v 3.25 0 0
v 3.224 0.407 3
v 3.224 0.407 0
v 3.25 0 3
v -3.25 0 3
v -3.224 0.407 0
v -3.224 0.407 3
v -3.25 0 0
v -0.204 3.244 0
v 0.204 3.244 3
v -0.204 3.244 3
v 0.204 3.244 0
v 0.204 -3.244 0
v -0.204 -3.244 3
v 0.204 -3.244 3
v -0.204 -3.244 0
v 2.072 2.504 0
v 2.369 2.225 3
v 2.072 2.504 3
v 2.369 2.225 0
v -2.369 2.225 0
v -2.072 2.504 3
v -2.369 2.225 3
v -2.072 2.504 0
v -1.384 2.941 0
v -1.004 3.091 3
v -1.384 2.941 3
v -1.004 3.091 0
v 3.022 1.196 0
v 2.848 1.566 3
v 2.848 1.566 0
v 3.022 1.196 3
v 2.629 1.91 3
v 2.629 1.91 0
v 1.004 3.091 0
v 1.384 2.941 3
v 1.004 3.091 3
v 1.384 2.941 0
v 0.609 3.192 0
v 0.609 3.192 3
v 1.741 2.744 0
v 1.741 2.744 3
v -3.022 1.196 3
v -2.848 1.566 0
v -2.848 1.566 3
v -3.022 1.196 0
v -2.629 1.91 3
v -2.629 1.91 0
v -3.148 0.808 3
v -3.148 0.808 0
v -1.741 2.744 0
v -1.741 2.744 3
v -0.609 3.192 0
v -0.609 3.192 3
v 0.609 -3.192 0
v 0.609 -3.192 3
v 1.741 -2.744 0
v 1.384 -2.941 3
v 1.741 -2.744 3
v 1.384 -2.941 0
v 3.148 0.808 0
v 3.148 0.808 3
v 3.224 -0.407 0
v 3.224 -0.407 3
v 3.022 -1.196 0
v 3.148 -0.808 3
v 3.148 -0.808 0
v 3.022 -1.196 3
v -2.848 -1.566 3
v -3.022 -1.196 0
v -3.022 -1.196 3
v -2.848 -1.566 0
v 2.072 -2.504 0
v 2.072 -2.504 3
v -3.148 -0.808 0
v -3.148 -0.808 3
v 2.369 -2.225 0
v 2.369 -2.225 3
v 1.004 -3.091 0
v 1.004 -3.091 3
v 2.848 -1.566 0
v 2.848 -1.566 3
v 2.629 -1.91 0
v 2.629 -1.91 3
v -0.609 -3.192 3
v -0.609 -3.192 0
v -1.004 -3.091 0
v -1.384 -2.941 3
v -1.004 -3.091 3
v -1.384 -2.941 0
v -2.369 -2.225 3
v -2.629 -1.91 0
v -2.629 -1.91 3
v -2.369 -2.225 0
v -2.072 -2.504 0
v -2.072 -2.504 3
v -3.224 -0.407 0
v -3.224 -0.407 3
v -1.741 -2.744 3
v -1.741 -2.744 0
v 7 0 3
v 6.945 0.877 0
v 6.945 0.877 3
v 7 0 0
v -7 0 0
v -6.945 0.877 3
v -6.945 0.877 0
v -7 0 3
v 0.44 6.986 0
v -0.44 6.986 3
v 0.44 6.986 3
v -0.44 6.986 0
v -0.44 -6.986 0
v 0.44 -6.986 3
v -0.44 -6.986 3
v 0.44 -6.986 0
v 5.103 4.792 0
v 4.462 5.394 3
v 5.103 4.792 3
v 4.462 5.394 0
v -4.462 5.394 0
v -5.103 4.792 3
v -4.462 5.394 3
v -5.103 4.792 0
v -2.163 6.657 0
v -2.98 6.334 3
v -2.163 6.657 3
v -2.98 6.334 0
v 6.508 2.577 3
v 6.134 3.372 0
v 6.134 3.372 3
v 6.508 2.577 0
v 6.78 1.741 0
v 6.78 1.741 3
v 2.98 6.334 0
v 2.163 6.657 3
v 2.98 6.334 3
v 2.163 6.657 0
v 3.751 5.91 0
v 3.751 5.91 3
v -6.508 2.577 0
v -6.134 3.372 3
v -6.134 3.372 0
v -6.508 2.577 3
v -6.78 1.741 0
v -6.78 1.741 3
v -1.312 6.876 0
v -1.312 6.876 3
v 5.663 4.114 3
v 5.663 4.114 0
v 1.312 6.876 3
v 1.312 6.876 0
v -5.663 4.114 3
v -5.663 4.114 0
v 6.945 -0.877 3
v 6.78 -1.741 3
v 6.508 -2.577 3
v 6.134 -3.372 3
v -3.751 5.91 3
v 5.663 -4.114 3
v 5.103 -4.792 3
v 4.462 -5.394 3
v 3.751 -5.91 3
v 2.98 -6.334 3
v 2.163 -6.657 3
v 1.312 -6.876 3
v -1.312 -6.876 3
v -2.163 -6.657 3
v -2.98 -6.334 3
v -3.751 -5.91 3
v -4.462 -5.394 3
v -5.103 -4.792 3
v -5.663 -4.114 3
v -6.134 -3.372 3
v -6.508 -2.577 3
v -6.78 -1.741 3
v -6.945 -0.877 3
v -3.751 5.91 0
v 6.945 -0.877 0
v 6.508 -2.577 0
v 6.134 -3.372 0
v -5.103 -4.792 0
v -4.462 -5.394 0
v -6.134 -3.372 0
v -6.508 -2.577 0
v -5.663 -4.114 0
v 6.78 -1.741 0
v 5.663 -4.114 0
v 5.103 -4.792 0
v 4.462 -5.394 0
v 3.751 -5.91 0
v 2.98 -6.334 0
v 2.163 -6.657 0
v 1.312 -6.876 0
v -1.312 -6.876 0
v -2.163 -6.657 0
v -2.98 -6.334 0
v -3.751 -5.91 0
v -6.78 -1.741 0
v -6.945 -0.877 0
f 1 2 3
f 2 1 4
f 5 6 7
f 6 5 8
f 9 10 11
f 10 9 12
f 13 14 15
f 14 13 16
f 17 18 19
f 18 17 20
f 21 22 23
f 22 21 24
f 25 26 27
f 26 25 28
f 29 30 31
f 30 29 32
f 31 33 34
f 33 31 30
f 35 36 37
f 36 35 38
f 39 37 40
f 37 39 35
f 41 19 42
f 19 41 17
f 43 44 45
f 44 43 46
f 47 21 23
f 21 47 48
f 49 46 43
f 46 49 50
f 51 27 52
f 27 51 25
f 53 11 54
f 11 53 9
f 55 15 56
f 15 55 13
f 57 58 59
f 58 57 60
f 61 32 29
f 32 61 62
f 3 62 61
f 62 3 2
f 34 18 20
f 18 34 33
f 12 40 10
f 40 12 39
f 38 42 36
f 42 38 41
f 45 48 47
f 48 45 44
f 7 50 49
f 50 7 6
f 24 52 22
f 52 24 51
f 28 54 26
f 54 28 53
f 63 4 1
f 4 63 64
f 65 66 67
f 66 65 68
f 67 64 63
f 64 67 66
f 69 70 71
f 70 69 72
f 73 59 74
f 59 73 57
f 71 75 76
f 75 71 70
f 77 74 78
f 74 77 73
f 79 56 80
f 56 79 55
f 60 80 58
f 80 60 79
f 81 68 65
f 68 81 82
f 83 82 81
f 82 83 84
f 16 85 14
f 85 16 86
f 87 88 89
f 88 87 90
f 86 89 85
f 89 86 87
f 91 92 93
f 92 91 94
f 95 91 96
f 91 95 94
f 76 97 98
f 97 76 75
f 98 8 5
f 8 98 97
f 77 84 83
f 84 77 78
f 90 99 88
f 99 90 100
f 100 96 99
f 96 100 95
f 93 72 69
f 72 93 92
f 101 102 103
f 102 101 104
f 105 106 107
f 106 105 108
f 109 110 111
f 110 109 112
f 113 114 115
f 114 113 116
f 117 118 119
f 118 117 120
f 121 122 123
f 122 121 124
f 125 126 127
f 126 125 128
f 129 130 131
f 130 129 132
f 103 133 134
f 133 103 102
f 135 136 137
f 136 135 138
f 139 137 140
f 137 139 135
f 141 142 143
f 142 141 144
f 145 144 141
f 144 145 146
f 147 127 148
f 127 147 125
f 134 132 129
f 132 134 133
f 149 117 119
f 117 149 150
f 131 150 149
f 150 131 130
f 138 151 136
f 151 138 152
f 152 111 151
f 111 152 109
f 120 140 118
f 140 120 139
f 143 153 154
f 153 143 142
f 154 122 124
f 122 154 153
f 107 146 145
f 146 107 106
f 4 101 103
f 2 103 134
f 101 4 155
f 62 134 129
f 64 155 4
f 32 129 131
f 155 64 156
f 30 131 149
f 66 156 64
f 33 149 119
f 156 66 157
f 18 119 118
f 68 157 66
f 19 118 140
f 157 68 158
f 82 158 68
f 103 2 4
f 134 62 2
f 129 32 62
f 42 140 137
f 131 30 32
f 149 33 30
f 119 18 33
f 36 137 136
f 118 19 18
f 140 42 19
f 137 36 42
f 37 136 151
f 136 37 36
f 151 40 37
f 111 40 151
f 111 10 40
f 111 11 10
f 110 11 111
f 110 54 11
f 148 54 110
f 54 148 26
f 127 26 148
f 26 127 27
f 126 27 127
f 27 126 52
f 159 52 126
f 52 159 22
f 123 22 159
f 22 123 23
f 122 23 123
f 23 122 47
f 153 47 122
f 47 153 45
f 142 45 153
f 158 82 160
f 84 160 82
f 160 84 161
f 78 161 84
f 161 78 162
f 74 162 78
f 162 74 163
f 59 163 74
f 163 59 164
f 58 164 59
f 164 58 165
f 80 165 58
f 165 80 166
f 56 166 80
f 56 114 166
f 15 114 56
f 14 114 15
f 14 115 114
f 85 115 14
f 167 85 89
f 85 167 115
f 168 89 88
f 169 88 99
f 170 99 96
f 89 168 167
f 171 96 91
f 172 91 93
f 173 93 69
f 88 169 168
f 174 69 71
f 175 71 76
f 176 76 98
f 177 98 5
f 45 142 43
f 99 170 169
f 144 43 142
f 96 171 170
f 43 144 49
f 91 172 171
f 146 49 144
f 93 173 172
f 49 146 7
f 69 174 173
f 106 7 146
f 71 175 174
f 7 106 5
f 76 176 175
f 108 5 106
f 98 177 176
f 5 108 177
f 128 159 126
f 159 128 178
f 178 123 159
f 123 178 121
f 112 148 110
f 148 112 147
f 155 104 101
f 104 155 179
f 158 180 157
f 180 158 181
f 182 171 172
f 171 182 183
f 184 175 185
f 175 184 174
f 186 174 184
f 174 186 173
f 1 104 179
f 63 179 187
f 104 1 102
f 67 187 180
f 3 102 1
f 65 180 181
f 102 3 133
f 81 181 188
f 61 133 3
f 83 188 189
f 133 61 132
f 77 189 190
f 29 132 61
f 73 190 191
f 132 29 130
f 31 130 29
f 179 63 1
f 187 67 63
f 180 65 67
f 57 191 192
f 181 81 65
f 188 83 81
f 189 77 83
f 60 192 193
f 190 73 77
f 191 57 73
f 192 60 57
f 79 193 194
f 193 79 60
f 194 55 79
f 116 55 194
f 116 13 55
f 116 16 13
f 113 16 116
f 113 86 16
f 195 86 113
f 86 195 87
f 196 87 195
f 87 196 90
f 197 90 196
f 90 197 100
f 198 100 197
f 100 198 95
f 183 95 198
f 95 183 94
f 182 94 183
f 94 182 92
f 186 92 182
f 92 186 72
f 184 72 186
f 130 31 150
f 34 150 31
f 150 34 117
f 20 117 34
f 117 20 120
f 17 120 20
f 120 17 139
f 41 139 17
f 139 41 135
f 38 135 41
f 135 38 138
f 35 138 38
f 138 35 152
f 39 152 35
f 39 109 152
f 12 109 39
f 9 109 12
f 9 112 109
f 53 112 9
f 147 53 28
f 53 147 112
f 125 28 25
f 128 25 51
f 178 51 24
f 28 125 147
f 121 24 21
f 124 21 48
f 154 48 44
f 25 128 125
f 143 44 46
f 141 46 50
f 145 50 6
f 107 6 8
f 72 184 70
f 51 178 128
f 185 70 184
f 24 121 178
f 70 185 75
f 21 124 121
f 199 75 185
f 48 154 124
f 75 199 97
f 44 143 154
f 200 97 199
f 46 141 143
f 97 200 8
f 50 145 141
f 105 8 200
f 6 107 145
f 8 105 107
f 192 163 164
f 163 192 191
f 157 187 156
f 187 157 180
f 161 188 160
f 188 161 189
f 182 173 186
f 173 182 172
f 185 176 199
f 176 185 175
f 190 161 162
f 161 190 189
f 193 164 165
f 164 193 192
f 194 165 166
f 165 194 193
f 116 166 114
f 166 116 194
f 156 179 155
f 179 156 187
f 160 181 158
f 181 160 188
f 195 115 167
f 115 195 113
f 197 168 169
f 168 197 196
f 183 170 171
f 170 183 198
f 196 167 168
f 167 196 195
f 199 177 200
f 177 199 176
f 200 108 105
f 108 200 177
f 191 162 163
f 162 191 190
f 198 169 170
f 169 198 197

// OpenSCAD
$fn = 50;


difference() {
	union() {
		cylinder(h = 3, r = 7.0000000000);
	}
	union() {
		#translate(v = [0.0000000000, 0.0000000000, -100.0000000000]) {
			cylinder(h = 200, r = 3.2500000000);
		}
		#translate(v = [0.0000000000, 0.0000000000, -100.0000000000]) {
			cylinder(h = 200, r = 3.2500000000);
		}
		#translate(v = [0.0000000000, 0.0000000000, -100.0000000000]) {
			cylinder(h = 200, r = 3.2500000000);
		}
		#translate(v = [0.0000000000, 0.0000000000, -100.0000000000]) {
			cylinder(h = 200, r = 3.2500000000);
		}
		#cylinder(h = 3, r = 3.0000000000);
	}
}
